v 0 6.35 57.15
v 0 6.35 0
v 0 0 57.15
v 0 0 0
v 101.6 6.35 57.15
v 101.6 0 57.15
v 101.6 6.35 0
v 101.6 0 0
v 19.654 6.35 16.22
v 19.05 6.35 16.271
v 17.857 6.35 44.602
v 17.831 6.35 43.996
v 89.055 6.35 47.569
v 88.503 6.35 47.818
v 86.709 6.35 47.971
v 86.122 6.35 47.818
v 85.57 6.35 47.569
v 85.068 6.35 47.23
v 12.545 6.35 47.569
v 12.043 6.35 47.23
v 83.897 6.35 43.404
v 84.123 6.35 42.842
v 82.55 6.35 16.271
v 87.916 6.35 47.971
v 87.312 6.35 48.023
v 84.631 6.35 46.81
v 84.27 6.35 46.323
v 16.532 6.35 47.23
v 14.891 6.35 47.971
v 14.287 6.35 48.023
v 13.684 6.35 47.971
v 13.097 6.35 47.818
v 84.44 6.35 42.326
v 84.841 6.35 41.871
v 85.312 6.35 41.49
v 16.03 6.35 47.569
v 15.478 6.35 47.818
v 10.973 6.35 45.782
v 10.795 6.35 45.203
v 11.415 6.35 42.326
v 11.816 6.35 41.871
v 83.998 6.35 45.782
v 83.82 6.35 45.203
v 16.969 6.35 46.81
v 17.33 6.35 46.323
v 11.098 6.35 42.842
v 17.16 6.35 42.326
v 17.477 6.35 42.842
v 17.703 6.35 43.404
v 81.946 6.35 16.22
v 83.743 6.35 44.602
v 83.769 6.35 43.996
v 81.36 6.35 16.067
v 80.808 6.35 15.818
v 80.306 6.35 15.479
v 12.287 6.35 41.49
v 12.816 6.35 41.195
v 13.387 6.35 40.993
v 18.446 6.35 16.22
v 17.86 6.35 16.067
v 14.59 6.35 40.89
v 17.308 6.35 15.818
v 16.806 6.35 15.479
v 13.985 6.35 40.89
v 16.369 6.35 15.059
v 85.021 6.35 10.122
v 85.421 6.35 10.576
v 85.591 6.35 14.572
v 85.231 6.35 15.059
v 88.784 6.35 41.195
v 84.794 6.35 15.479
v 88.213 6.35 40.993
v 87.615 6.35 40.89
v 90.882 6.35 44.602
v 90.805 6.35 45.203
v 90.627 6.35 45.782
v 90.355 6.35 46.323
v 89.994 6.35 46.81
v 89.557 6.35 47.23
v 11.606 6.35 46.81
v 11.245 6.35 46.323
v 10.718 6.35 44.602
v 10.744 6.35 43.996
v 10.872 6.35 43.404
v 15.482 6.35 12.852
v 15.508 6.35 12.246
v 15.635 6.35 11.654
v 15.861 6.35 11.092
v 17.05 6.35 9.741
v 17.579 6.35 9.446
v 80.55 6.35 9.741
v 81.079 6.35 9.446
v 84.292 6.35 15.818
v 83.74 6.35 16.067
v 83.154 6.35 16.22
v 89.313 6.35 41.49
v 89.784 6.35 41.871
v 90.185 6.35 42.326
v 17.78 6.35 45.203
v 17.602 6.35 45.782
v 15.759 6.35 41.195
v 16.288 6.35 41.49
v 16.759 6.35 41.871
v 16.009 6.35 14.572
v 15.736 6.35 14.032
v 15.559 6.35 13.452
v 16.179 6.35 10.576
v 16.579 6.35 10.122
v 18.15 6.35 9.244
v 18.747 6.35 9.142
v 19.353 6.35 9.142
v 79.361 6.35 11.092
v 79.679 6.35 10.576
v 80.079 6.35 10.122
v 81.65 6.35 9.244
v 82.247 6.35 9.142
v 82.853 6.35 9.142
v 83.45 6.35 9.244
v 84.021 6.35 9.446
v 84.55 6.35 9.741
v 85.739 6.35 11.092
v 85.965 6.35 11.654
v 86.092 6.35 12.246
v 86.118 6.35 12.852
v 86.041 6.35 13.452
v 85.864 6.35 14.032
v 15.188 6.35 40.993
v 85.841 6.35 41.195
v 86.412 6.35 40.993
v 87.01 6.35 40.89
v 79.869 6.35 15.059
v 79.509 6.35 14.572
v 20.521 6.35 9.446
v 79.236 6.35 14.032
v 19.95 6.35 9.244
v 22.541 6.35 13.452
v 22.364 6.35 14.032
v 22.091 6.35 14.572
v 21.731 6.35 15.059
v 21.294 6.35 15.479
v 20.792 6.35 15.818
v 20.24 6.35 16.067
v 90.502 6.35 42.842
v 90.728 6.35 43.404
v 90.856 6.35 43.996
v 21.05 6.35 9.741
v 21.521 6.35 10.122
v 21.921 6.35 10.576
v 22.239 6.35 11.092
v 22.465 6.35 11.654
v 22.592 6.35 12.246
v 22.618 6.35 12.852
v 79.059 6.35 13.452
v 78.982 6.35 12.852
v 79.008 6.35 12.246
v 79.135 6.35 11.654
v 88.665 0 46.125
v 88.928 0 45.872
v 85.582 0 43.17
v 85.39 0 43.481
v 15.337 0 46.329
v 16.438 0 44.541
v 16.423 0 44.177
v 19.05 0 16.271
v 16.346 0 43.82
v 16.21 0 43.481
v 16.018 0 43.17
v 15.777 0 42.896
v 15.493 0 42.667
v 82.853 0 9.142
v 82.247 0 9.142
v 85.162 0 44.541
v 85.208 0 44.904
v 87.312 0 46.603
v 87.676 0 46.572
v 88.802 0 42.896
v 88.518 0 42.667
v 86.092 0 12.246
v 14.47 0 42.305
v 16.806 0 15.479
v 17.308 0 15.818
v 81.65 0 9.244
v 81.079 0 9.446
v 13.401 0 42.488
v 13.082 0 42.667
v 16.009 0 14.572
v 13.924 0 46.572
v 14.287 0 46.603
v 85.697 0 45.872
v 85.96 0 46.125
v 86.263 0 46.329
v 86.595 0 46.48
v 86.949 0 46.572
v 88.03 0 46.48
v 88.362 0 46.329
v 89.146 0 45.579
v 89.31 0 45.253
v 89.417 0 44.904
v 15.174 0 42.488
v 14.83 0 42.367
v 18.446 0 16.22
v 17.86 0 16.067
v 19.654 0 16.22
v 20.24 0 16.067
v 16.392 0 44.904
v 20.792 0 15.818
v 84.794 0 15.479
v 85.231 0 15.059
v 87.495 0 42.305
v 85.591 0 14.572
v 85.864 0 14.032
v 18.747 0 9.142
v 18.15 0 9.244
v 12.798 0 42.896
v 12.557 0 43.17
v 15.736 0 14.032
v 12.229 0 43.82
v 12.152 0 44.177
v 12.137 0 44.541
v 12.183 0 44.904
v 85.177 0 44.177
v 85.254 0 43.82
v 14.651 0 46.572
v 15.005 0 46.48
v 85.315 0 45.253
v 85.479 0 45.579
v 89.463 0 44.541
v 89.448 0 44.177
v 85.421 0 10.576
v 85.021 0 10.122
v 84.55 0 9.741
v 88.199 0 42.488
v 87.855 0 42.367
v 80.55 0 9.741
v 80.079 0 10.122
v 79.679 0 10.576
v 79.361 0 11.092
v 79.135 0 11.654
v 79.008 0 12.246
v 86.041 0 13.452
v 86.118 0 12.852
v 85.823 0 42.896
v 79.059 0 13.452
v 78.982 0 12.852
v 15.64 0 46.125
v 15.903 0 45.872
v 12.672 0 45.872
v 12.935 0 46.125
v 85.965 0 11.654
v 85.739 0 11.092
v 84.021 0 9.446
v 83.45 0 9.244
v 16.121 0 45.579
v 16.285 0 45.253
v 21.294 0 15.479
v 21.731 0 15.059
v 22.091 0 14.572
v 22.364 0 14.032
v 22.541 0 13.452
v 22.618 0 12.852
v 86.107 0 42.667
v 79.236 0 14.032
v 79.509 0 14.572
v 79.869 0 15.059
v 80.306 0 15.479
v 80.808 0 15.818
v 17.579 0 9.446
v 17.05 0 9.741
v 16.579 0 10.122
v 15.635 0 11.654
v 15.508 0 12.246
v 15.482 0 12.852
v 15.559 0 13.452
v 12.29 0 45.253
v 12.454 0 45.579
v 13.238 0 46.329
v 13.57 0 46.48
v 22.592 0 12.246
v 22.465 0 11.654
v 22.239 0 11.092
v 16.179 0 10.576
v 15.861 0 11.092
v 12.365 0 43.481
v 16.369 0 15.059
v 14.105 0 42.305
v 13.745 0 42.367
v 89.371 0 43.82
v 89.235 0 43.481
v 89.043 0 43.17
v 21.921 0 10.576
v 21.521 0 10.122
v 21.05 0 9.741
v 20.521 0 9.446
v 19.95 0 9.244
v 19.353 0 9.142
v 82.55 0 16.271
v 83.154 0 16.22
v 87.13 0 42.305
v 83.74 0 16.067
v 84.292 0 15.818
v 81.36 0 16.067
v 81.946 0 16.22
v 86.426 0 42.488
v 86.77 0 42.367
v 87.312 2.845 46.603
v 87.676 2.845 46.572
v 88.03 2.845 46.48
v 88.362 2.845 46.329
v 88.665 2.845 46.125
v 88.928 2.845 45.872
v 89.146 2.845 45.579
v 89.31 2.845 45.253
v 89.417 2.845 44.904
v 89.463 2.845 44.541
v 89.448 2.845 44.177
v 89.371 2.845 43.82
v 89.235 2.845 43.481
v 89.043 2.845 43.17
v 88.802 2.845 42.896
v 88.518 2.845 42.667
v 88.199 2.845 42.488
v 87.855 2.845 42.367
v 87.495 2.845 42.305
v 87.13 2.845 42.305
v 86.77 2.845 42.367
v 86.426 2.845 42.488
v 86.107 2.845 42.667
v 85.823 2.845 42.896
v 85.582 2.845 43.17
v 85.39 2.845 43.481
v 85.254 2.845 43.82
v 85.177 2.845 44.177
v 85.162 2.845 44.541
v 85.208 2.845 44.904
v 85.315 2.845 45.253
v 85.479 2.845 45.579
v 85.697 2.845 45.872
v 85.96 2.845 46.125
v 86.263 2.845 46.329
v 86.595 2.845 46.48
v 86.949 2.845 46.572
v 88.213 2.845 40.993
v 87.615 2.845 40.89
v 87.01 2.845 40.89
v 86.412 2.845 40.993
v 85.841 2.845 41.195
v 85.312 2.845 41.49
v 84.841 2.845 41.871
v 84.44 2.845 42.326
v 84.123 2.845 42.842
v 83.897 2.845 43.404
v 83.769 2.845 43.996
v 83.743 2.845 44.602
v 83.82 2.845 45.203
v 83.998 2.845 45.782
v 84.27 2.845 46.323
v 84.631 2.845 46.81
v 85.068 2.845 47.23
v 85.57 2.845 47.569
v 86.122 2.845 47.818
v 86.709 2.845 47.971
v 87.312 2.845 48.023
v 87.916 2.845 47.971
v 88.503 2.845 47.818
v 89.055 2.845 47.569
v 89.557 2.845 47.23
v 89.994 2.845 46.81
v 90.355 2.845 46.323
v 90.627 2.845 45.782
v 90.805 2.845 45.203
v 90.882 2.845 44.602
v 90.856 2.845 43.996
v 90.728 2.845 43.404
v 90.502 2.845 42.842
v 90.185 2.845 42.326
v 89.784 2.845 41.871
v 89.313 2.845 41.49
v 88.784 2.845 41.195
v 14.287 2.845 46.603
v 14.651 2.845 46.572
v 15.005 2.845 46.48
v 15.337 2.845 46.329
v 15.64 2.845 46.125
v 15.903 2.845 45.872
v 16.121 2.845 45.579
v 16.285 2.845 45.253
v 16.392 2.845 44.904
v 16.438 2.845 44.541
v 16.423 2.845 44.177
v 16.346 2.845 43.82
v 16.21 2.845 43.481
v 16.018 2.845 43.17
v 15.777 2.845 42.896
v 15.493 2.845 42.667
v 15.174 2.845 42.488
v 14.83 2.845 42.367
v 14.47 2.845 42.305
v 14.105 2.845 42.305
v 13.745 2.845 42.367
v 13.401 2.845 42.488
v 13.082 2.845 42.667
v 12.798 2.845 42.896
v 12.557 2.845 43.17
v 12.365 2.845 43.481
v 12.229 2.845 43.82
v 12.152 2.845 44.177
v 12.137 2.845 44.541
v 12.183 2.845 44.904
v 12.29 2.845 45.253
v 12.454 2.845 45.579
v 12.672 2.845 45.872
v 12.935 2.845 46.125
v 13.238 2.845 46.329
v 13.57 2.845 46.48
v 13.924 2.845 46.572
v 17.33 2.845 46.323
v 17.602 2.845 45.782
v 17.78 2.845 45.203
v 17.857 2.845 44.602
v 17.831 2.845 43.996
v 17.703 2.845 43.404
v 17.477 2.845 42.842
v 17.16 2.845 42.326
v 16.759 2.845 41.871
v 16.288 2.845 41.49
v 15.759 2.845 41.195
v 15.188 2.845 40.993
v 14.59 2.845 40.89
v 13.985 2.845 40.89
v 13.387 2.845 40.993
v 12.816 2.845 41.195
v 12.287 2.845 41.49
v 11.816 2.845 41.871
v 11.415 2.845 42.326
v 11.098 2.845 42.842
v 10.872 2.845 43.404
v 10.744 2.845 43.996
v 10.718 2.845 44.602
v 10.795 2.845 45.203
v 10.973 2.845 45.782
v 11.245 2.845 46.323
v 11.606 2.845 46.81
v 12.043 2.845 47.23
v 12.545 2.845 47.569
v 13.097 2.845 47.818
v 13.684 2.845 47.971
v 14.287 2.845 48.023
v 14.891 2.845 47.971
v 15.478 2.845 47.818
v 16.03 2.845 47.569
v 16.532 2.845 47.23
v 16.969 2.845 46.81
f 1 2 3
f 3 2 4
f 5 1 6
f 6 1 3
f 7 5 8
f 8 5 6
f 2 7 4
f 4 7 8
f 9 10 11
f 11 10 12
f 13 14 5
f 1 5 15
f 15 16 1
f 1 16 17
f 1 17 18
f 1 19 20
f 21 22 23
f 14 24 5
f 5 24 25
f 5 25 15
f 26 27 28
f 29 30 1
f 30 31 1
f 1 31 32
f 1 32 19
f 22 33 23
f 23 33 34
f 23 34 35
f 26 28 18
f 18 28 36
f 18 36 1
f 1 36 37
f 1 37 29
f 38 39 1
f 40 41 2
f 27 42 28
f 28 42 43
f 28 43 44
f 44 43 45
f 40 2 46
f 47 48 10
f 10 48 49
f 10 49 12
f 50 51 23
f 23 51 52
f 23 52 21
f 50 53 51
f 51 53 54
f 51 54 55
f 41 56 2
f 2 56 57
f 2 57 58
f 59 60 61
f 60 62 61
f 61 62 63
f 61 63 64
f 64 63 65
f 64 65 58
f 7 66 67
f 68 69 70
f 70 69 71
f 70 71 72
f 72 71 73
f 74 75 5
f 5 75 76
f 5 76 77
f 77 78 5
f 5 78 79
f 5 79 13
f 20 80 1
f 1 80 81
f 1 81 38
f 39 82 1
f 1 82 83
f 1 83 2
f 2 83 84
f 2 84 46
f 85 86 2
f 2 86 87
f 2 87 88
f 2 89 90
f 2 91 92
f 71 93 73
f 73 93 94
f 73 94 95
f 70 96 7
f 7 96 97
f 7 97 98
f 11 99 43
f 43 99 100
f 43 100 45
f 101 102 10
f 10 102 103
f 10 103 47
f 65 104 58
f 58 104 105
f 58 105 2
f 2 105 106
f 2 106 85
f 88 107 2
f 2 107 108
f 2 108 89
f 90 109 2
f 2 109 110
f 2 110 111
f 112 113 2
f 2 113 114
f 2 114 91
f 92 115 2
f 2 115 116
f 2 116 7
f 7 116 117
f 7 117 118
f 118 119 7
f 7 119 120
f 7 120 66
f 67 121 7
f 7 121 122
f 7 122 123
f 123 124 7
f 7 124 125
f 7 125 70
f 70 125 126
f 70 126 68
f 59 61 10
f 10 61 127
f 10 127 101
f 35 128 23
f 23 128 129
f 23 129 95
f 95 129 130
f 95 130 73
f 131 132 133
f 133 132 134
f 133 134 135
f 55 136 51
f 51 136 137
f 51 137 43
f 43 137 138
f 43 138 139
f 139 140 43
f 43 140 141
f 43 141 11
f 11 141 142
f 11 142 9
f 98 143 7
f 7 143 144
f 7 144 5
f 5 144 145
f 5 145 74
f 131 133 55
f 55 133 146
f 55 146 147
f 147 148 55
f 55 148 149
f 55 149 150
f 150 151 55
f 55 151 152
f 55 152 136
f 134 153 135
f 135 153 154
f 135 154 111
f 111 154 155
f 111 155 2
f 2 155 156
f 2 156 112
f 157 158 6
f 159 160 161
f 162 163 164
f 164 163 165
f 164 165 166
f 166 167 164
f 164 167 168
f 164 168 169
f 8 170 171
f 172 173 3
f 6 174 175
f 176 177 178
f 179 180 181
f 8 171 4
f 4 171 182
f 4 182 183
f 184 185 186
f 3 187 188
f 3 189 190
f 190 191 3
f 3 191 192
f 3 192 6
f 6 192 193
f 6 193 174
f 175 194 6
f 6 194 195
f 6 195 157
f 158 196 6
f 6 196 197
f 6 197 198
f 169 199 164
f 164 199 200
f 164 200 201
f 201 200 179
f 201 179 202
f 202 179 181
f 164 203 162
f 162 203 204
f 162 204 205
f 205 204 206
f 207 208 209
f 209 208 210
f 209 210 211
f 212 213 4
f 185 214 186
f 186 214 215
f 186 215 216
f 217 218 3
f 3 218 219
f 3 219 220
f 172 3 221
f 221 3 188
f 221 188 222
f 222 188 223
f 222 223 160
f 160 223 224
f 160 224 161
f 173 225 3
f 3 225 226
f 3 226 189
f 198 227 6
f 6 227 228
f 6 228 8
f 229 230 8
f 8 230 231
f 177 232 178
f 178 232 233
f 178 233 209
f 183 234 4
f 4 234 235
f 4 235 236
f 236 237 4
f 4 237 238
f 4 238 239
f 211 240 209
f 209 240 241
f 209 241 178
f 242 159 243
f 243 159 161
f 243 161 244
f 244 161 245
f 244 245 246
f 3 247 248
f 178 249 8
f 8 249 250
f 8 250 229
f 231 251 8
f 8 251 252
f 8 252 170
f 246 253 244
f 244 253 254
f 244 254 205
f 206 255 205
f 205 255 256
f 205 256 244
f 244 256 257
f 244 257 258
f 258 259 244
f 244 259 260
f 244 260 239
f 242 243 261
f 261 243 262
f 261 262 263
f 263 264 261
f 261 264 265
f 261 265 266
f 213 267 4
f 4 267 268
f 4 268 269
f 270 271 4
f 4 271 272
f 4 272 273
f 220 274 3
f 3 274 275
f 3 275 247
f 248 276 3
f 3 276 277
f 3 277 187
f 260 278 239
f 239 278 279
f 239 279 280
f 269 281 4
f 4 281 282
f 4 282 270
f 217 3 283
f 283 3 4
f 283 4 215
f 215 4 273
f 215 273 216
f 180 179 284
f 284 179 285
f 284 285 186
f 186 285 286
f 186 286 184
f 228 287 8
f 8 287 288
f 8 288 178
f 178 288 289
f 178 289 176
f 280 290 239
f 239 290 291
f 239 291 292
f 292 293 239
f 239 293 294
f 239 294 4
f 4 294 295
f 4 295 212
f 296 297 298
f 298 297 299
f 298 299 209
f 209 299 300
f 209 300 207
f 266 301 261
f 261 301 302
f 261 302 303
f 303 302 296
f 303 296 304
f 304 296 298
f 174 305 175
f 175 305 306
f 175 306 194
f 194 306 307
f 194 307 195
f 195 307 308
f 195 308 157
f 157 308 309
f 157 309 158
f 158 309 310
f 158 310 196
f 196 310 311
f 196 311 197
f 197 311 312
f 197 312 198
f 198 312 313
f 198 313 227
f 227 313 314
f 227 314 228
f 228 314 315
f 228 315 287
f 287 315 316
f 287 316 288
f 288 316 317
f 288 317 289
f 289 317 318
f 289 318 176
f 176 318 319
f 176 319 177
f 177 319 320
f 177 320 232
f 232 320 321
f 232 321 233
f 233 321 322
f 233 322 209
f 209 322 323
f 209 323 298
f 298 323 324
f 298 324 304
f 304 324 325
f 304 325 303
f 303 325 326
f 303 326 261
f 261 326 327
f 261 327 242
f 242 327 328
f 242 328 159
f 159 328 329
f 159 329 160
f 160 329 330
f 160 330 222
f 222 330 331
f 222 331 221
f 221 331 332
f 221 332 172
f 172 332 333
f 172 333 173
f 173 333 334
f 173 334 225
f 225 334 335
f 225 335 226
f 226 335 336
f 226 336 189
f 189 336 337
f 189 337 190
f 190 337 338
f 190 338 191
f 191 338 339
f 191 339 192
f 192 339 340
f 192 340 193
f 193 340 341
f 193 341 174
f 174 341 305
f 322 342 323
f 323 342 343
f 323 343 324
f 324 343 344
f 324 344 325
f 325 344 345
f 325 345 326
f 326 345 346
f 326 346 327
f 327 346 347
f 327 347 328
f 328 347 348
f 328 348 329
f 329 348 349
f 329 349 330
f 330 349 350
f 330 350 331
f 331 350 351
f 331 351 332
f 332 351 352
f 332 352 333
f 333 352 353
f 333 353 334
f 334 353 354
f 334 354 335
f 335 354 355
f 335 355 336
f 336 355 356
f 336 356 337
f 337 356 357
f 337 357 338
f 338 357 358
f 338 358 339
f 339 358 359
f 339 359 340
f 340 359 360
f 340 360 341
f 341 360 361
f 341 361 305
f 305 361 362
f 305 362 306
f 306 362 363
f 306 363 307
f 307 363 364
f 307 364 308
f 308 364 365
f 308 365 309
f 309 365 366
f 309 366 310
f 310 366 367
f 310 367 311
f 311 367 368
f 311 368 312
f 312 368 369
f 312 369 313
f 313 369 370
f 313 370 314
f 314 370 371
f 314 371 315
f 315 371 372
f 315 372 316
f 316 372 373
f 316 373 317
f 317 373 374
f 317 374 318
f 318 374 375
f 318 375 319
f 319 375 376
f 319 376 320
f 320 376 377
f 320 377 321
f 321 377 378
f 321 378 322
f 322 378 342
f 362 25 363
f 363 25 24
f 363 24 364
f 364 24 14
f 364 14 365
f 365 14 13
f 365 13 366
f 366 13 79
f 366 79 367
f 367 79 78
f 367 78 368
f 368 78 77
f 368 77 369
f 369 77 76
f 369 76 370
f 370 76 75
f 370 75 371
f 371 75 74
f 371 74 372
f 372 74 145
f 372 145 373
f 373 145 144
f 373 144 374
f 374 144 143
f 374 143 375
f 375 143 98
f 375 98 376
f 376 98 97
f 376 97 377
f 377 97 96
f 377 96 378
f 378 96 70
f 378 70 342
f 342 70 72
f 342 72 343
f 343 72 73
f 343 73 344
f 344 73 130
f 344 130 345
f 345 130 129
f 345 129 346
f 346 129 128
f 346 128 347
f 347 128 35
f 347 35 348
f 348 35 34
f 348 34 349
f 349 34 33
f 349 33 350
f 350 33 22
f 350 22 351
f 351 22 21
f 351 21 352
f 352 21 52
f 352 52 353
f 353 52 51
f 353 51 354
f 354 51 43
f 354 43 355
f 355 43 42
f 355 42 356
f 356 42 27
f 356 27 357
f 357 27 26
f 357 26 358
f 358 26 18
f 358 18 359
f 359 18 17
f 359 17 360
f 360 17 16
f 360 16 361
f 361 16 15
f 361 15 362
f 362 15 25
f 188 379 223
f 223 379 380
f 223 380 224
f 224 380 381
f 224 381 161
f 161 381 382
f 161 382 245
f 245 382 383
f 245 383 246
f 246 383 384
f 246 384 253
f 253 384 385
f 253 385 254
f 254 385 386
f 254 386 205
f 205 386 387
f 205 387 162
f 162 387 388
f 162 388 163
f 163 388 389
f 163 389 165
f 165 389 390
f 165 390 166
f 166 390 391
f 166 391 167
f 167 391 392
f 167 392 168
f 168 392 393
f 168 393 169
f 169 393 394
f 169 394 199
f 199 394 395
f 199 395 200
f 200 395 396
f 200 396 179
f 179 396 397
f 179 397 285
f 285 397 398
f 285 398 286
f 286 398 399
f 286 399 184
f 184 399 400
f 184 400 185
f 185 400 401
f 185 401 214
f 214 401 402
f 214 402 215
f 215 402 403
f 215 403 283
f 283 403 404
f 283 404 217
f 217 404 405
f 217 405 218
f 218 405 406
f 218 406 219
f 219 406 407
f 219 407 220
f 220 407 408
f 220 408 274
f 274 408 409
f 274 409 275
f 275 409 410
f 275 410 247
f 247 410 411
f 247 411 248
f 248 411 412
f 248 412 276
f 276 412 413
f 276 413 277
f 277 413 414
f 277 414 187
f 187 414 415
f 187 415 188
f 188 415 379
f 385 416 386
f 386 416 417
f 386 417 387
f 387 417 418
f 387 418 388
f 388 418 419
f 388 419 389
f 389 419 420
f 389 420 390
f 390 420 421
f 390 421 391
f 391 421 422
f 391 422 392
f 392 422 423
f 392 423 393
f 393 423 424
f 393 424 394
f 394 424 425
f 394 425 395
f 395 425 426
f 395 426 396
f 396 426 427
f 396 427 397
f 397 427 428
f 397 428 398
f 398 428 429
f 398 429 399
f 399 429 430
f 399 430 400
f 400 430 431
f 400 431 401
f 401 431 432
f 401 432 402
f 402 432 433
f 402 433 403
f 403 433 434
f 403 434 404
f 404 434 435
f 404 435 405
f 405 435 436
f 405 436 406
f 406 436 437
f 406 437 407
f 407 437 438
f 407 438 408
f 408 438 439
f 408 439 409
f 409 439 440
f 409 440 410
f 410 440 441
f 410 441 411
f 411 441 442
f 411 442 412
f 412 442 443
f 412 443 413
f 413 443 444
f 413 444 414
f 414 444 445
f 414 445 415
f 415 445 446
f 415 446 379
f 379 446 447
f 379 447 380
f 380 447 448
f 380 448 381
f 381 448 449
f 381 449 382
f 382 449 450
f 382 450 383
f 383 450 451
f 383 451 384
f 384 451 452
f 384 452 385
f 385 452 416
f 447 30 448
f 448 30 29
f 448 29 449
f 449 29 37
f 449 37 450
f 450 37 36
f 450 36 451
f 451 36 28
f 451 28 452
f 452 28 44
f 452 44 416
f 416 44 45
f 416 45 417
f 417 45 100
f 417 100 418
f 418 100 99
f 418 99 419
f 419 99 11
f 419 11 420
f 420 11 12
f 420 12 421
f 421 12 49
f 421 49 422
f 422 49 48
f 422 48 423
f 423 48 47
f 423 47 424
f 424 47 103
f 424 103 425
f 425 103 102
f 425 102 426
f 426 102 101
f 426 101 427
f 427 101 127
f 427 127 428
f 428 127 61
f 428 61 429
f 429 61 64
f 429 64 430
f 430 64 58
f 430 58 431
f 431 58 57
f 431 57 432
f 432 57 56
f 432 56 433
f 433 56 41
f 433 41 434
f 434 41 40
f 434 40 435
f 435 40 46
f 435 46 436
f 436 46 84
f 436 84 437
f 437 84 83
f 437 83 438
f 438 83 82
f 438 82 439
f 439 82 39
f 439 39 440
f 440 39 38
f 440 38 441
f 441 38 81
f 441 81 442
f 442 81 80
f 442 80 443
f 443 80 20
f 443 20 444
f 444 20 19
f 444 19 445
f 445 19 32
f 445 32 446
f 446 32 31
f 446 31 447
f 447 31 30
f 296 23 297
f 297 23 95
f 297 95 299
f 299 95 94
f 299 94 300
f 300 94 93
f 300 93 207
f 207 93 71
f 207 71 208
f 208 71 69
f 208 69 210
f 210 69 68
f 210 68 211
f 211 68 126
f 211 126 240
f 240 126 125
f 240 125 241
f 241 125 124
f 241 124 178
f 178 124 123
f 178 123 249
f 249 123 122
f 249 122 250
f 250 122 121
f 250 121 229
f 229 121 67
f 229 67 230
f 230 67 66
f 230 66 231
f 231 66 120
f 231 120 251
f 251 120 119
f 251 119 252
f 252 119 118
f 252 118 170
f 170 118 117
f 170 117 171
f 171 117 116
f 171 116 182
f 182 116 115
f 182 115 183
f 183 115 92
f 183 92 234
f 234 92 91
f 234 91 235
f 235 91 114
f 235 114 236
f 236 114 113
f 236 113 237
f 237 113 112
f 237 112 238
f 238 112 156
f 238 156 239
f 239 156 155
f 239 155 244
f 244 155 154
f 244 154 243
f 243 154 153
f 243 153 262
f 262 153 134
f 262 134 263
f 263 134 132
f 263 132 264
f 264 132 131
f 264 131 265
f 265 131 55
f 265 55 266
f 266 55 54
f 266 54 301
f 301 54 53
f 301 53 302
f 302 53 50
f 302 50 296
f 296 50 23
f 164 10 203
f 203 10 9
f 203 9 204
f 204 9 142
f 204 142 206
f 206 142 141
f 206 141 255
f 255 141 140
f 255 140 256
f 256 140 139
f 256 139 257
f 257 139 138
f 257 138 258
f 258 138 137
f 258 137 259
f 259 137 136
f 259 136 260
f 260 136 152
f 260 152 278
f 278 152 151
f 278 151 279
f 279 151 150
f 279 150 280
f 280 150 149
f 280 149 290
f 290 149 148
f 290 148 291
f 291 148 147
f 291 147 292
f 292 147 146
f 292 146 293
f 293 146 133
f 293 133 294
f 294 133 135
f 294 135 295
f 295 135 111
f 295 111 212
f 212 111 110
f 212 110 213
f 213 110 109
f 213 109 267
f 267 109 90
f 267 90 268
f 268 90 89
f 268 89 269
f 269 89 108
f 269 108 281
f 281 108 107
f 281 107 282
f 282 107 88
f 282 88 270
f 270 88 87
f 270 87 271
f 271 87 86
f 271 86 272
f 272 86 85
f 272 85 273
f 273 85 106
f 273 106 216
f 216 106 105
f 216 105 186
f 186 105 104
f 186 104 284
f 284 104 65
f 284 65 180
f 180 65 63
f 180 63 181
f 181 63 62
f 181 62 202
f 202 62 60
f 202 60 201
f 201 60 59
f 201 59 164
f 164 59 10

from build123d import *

# Parameters (mm, degrees)
SKETCH1_W                                      = 101.6
SKETCH1_H                                      = 57.15
BOSS_EXTRUDE1_DEPTH                            = 6.35
CBORE_FOR_6_SOCKET_HEAD_CAP_SCREW1_D           = 4.3053
CBORE_FOR_6_SOCKET_HEAD_CAP_SCREW1_CBORE_D     = 7.14502
CBORE_FOR_6_SOCKET_HEAD_CAP_SCREW1_CBORE_DEPTH = 3.5052
F_1_4_CLEARANCE_HOLE1_D                        = 7.14248


with BuildPart() as part:
    # Sketch1 → Boss-Extrude1 (new body)
    with BuildSketch(Plane(origin=(0, 0, 0), x_dir=(1, 0, 0), z_dir=(0, 1, 0))):
        with Locations((50.8, -28.575)):
            Rectangle(SKETCH1_W, SKETCH1_H)
    extrude(amount=BOSS_EXTRUDE1_DEPTH)

    # CBORE for #6 Socket Head Cap Screw1 (through all)
    with Locations(Plane(origin=(0, 6.35, 0), x_dir=(1, 0, 0), z_dir=(0, 1, 0))):
        with Locations((14.2875, -44.45), (87.3125, -44.45)):
            CounterBoreHole(CBORE_FOR_6_SOCKET_HEAD_CAP_SCREW1_D / 2, CBORE_FOR_6_SOCKET_HEAD_CAP_SCREW1_CBORE_D / 2, CBORE_FOR_6_SOCKET_HEAD_CAP_SCREW1_CBORE_DEPTH)

    # 1/4 Clearance Hole1 (through all)
    with Locations(Plane(origin=(0, 6.35, 0), x_dir=(1, 0, 0), z_dir=(0, 1, 0))):
        with Locations((19.05, -12.7), (82.55, -12.7)):
            Hole(F_1_4_CLEARANCE_HOLE1_D / 2)


solid = part.part
